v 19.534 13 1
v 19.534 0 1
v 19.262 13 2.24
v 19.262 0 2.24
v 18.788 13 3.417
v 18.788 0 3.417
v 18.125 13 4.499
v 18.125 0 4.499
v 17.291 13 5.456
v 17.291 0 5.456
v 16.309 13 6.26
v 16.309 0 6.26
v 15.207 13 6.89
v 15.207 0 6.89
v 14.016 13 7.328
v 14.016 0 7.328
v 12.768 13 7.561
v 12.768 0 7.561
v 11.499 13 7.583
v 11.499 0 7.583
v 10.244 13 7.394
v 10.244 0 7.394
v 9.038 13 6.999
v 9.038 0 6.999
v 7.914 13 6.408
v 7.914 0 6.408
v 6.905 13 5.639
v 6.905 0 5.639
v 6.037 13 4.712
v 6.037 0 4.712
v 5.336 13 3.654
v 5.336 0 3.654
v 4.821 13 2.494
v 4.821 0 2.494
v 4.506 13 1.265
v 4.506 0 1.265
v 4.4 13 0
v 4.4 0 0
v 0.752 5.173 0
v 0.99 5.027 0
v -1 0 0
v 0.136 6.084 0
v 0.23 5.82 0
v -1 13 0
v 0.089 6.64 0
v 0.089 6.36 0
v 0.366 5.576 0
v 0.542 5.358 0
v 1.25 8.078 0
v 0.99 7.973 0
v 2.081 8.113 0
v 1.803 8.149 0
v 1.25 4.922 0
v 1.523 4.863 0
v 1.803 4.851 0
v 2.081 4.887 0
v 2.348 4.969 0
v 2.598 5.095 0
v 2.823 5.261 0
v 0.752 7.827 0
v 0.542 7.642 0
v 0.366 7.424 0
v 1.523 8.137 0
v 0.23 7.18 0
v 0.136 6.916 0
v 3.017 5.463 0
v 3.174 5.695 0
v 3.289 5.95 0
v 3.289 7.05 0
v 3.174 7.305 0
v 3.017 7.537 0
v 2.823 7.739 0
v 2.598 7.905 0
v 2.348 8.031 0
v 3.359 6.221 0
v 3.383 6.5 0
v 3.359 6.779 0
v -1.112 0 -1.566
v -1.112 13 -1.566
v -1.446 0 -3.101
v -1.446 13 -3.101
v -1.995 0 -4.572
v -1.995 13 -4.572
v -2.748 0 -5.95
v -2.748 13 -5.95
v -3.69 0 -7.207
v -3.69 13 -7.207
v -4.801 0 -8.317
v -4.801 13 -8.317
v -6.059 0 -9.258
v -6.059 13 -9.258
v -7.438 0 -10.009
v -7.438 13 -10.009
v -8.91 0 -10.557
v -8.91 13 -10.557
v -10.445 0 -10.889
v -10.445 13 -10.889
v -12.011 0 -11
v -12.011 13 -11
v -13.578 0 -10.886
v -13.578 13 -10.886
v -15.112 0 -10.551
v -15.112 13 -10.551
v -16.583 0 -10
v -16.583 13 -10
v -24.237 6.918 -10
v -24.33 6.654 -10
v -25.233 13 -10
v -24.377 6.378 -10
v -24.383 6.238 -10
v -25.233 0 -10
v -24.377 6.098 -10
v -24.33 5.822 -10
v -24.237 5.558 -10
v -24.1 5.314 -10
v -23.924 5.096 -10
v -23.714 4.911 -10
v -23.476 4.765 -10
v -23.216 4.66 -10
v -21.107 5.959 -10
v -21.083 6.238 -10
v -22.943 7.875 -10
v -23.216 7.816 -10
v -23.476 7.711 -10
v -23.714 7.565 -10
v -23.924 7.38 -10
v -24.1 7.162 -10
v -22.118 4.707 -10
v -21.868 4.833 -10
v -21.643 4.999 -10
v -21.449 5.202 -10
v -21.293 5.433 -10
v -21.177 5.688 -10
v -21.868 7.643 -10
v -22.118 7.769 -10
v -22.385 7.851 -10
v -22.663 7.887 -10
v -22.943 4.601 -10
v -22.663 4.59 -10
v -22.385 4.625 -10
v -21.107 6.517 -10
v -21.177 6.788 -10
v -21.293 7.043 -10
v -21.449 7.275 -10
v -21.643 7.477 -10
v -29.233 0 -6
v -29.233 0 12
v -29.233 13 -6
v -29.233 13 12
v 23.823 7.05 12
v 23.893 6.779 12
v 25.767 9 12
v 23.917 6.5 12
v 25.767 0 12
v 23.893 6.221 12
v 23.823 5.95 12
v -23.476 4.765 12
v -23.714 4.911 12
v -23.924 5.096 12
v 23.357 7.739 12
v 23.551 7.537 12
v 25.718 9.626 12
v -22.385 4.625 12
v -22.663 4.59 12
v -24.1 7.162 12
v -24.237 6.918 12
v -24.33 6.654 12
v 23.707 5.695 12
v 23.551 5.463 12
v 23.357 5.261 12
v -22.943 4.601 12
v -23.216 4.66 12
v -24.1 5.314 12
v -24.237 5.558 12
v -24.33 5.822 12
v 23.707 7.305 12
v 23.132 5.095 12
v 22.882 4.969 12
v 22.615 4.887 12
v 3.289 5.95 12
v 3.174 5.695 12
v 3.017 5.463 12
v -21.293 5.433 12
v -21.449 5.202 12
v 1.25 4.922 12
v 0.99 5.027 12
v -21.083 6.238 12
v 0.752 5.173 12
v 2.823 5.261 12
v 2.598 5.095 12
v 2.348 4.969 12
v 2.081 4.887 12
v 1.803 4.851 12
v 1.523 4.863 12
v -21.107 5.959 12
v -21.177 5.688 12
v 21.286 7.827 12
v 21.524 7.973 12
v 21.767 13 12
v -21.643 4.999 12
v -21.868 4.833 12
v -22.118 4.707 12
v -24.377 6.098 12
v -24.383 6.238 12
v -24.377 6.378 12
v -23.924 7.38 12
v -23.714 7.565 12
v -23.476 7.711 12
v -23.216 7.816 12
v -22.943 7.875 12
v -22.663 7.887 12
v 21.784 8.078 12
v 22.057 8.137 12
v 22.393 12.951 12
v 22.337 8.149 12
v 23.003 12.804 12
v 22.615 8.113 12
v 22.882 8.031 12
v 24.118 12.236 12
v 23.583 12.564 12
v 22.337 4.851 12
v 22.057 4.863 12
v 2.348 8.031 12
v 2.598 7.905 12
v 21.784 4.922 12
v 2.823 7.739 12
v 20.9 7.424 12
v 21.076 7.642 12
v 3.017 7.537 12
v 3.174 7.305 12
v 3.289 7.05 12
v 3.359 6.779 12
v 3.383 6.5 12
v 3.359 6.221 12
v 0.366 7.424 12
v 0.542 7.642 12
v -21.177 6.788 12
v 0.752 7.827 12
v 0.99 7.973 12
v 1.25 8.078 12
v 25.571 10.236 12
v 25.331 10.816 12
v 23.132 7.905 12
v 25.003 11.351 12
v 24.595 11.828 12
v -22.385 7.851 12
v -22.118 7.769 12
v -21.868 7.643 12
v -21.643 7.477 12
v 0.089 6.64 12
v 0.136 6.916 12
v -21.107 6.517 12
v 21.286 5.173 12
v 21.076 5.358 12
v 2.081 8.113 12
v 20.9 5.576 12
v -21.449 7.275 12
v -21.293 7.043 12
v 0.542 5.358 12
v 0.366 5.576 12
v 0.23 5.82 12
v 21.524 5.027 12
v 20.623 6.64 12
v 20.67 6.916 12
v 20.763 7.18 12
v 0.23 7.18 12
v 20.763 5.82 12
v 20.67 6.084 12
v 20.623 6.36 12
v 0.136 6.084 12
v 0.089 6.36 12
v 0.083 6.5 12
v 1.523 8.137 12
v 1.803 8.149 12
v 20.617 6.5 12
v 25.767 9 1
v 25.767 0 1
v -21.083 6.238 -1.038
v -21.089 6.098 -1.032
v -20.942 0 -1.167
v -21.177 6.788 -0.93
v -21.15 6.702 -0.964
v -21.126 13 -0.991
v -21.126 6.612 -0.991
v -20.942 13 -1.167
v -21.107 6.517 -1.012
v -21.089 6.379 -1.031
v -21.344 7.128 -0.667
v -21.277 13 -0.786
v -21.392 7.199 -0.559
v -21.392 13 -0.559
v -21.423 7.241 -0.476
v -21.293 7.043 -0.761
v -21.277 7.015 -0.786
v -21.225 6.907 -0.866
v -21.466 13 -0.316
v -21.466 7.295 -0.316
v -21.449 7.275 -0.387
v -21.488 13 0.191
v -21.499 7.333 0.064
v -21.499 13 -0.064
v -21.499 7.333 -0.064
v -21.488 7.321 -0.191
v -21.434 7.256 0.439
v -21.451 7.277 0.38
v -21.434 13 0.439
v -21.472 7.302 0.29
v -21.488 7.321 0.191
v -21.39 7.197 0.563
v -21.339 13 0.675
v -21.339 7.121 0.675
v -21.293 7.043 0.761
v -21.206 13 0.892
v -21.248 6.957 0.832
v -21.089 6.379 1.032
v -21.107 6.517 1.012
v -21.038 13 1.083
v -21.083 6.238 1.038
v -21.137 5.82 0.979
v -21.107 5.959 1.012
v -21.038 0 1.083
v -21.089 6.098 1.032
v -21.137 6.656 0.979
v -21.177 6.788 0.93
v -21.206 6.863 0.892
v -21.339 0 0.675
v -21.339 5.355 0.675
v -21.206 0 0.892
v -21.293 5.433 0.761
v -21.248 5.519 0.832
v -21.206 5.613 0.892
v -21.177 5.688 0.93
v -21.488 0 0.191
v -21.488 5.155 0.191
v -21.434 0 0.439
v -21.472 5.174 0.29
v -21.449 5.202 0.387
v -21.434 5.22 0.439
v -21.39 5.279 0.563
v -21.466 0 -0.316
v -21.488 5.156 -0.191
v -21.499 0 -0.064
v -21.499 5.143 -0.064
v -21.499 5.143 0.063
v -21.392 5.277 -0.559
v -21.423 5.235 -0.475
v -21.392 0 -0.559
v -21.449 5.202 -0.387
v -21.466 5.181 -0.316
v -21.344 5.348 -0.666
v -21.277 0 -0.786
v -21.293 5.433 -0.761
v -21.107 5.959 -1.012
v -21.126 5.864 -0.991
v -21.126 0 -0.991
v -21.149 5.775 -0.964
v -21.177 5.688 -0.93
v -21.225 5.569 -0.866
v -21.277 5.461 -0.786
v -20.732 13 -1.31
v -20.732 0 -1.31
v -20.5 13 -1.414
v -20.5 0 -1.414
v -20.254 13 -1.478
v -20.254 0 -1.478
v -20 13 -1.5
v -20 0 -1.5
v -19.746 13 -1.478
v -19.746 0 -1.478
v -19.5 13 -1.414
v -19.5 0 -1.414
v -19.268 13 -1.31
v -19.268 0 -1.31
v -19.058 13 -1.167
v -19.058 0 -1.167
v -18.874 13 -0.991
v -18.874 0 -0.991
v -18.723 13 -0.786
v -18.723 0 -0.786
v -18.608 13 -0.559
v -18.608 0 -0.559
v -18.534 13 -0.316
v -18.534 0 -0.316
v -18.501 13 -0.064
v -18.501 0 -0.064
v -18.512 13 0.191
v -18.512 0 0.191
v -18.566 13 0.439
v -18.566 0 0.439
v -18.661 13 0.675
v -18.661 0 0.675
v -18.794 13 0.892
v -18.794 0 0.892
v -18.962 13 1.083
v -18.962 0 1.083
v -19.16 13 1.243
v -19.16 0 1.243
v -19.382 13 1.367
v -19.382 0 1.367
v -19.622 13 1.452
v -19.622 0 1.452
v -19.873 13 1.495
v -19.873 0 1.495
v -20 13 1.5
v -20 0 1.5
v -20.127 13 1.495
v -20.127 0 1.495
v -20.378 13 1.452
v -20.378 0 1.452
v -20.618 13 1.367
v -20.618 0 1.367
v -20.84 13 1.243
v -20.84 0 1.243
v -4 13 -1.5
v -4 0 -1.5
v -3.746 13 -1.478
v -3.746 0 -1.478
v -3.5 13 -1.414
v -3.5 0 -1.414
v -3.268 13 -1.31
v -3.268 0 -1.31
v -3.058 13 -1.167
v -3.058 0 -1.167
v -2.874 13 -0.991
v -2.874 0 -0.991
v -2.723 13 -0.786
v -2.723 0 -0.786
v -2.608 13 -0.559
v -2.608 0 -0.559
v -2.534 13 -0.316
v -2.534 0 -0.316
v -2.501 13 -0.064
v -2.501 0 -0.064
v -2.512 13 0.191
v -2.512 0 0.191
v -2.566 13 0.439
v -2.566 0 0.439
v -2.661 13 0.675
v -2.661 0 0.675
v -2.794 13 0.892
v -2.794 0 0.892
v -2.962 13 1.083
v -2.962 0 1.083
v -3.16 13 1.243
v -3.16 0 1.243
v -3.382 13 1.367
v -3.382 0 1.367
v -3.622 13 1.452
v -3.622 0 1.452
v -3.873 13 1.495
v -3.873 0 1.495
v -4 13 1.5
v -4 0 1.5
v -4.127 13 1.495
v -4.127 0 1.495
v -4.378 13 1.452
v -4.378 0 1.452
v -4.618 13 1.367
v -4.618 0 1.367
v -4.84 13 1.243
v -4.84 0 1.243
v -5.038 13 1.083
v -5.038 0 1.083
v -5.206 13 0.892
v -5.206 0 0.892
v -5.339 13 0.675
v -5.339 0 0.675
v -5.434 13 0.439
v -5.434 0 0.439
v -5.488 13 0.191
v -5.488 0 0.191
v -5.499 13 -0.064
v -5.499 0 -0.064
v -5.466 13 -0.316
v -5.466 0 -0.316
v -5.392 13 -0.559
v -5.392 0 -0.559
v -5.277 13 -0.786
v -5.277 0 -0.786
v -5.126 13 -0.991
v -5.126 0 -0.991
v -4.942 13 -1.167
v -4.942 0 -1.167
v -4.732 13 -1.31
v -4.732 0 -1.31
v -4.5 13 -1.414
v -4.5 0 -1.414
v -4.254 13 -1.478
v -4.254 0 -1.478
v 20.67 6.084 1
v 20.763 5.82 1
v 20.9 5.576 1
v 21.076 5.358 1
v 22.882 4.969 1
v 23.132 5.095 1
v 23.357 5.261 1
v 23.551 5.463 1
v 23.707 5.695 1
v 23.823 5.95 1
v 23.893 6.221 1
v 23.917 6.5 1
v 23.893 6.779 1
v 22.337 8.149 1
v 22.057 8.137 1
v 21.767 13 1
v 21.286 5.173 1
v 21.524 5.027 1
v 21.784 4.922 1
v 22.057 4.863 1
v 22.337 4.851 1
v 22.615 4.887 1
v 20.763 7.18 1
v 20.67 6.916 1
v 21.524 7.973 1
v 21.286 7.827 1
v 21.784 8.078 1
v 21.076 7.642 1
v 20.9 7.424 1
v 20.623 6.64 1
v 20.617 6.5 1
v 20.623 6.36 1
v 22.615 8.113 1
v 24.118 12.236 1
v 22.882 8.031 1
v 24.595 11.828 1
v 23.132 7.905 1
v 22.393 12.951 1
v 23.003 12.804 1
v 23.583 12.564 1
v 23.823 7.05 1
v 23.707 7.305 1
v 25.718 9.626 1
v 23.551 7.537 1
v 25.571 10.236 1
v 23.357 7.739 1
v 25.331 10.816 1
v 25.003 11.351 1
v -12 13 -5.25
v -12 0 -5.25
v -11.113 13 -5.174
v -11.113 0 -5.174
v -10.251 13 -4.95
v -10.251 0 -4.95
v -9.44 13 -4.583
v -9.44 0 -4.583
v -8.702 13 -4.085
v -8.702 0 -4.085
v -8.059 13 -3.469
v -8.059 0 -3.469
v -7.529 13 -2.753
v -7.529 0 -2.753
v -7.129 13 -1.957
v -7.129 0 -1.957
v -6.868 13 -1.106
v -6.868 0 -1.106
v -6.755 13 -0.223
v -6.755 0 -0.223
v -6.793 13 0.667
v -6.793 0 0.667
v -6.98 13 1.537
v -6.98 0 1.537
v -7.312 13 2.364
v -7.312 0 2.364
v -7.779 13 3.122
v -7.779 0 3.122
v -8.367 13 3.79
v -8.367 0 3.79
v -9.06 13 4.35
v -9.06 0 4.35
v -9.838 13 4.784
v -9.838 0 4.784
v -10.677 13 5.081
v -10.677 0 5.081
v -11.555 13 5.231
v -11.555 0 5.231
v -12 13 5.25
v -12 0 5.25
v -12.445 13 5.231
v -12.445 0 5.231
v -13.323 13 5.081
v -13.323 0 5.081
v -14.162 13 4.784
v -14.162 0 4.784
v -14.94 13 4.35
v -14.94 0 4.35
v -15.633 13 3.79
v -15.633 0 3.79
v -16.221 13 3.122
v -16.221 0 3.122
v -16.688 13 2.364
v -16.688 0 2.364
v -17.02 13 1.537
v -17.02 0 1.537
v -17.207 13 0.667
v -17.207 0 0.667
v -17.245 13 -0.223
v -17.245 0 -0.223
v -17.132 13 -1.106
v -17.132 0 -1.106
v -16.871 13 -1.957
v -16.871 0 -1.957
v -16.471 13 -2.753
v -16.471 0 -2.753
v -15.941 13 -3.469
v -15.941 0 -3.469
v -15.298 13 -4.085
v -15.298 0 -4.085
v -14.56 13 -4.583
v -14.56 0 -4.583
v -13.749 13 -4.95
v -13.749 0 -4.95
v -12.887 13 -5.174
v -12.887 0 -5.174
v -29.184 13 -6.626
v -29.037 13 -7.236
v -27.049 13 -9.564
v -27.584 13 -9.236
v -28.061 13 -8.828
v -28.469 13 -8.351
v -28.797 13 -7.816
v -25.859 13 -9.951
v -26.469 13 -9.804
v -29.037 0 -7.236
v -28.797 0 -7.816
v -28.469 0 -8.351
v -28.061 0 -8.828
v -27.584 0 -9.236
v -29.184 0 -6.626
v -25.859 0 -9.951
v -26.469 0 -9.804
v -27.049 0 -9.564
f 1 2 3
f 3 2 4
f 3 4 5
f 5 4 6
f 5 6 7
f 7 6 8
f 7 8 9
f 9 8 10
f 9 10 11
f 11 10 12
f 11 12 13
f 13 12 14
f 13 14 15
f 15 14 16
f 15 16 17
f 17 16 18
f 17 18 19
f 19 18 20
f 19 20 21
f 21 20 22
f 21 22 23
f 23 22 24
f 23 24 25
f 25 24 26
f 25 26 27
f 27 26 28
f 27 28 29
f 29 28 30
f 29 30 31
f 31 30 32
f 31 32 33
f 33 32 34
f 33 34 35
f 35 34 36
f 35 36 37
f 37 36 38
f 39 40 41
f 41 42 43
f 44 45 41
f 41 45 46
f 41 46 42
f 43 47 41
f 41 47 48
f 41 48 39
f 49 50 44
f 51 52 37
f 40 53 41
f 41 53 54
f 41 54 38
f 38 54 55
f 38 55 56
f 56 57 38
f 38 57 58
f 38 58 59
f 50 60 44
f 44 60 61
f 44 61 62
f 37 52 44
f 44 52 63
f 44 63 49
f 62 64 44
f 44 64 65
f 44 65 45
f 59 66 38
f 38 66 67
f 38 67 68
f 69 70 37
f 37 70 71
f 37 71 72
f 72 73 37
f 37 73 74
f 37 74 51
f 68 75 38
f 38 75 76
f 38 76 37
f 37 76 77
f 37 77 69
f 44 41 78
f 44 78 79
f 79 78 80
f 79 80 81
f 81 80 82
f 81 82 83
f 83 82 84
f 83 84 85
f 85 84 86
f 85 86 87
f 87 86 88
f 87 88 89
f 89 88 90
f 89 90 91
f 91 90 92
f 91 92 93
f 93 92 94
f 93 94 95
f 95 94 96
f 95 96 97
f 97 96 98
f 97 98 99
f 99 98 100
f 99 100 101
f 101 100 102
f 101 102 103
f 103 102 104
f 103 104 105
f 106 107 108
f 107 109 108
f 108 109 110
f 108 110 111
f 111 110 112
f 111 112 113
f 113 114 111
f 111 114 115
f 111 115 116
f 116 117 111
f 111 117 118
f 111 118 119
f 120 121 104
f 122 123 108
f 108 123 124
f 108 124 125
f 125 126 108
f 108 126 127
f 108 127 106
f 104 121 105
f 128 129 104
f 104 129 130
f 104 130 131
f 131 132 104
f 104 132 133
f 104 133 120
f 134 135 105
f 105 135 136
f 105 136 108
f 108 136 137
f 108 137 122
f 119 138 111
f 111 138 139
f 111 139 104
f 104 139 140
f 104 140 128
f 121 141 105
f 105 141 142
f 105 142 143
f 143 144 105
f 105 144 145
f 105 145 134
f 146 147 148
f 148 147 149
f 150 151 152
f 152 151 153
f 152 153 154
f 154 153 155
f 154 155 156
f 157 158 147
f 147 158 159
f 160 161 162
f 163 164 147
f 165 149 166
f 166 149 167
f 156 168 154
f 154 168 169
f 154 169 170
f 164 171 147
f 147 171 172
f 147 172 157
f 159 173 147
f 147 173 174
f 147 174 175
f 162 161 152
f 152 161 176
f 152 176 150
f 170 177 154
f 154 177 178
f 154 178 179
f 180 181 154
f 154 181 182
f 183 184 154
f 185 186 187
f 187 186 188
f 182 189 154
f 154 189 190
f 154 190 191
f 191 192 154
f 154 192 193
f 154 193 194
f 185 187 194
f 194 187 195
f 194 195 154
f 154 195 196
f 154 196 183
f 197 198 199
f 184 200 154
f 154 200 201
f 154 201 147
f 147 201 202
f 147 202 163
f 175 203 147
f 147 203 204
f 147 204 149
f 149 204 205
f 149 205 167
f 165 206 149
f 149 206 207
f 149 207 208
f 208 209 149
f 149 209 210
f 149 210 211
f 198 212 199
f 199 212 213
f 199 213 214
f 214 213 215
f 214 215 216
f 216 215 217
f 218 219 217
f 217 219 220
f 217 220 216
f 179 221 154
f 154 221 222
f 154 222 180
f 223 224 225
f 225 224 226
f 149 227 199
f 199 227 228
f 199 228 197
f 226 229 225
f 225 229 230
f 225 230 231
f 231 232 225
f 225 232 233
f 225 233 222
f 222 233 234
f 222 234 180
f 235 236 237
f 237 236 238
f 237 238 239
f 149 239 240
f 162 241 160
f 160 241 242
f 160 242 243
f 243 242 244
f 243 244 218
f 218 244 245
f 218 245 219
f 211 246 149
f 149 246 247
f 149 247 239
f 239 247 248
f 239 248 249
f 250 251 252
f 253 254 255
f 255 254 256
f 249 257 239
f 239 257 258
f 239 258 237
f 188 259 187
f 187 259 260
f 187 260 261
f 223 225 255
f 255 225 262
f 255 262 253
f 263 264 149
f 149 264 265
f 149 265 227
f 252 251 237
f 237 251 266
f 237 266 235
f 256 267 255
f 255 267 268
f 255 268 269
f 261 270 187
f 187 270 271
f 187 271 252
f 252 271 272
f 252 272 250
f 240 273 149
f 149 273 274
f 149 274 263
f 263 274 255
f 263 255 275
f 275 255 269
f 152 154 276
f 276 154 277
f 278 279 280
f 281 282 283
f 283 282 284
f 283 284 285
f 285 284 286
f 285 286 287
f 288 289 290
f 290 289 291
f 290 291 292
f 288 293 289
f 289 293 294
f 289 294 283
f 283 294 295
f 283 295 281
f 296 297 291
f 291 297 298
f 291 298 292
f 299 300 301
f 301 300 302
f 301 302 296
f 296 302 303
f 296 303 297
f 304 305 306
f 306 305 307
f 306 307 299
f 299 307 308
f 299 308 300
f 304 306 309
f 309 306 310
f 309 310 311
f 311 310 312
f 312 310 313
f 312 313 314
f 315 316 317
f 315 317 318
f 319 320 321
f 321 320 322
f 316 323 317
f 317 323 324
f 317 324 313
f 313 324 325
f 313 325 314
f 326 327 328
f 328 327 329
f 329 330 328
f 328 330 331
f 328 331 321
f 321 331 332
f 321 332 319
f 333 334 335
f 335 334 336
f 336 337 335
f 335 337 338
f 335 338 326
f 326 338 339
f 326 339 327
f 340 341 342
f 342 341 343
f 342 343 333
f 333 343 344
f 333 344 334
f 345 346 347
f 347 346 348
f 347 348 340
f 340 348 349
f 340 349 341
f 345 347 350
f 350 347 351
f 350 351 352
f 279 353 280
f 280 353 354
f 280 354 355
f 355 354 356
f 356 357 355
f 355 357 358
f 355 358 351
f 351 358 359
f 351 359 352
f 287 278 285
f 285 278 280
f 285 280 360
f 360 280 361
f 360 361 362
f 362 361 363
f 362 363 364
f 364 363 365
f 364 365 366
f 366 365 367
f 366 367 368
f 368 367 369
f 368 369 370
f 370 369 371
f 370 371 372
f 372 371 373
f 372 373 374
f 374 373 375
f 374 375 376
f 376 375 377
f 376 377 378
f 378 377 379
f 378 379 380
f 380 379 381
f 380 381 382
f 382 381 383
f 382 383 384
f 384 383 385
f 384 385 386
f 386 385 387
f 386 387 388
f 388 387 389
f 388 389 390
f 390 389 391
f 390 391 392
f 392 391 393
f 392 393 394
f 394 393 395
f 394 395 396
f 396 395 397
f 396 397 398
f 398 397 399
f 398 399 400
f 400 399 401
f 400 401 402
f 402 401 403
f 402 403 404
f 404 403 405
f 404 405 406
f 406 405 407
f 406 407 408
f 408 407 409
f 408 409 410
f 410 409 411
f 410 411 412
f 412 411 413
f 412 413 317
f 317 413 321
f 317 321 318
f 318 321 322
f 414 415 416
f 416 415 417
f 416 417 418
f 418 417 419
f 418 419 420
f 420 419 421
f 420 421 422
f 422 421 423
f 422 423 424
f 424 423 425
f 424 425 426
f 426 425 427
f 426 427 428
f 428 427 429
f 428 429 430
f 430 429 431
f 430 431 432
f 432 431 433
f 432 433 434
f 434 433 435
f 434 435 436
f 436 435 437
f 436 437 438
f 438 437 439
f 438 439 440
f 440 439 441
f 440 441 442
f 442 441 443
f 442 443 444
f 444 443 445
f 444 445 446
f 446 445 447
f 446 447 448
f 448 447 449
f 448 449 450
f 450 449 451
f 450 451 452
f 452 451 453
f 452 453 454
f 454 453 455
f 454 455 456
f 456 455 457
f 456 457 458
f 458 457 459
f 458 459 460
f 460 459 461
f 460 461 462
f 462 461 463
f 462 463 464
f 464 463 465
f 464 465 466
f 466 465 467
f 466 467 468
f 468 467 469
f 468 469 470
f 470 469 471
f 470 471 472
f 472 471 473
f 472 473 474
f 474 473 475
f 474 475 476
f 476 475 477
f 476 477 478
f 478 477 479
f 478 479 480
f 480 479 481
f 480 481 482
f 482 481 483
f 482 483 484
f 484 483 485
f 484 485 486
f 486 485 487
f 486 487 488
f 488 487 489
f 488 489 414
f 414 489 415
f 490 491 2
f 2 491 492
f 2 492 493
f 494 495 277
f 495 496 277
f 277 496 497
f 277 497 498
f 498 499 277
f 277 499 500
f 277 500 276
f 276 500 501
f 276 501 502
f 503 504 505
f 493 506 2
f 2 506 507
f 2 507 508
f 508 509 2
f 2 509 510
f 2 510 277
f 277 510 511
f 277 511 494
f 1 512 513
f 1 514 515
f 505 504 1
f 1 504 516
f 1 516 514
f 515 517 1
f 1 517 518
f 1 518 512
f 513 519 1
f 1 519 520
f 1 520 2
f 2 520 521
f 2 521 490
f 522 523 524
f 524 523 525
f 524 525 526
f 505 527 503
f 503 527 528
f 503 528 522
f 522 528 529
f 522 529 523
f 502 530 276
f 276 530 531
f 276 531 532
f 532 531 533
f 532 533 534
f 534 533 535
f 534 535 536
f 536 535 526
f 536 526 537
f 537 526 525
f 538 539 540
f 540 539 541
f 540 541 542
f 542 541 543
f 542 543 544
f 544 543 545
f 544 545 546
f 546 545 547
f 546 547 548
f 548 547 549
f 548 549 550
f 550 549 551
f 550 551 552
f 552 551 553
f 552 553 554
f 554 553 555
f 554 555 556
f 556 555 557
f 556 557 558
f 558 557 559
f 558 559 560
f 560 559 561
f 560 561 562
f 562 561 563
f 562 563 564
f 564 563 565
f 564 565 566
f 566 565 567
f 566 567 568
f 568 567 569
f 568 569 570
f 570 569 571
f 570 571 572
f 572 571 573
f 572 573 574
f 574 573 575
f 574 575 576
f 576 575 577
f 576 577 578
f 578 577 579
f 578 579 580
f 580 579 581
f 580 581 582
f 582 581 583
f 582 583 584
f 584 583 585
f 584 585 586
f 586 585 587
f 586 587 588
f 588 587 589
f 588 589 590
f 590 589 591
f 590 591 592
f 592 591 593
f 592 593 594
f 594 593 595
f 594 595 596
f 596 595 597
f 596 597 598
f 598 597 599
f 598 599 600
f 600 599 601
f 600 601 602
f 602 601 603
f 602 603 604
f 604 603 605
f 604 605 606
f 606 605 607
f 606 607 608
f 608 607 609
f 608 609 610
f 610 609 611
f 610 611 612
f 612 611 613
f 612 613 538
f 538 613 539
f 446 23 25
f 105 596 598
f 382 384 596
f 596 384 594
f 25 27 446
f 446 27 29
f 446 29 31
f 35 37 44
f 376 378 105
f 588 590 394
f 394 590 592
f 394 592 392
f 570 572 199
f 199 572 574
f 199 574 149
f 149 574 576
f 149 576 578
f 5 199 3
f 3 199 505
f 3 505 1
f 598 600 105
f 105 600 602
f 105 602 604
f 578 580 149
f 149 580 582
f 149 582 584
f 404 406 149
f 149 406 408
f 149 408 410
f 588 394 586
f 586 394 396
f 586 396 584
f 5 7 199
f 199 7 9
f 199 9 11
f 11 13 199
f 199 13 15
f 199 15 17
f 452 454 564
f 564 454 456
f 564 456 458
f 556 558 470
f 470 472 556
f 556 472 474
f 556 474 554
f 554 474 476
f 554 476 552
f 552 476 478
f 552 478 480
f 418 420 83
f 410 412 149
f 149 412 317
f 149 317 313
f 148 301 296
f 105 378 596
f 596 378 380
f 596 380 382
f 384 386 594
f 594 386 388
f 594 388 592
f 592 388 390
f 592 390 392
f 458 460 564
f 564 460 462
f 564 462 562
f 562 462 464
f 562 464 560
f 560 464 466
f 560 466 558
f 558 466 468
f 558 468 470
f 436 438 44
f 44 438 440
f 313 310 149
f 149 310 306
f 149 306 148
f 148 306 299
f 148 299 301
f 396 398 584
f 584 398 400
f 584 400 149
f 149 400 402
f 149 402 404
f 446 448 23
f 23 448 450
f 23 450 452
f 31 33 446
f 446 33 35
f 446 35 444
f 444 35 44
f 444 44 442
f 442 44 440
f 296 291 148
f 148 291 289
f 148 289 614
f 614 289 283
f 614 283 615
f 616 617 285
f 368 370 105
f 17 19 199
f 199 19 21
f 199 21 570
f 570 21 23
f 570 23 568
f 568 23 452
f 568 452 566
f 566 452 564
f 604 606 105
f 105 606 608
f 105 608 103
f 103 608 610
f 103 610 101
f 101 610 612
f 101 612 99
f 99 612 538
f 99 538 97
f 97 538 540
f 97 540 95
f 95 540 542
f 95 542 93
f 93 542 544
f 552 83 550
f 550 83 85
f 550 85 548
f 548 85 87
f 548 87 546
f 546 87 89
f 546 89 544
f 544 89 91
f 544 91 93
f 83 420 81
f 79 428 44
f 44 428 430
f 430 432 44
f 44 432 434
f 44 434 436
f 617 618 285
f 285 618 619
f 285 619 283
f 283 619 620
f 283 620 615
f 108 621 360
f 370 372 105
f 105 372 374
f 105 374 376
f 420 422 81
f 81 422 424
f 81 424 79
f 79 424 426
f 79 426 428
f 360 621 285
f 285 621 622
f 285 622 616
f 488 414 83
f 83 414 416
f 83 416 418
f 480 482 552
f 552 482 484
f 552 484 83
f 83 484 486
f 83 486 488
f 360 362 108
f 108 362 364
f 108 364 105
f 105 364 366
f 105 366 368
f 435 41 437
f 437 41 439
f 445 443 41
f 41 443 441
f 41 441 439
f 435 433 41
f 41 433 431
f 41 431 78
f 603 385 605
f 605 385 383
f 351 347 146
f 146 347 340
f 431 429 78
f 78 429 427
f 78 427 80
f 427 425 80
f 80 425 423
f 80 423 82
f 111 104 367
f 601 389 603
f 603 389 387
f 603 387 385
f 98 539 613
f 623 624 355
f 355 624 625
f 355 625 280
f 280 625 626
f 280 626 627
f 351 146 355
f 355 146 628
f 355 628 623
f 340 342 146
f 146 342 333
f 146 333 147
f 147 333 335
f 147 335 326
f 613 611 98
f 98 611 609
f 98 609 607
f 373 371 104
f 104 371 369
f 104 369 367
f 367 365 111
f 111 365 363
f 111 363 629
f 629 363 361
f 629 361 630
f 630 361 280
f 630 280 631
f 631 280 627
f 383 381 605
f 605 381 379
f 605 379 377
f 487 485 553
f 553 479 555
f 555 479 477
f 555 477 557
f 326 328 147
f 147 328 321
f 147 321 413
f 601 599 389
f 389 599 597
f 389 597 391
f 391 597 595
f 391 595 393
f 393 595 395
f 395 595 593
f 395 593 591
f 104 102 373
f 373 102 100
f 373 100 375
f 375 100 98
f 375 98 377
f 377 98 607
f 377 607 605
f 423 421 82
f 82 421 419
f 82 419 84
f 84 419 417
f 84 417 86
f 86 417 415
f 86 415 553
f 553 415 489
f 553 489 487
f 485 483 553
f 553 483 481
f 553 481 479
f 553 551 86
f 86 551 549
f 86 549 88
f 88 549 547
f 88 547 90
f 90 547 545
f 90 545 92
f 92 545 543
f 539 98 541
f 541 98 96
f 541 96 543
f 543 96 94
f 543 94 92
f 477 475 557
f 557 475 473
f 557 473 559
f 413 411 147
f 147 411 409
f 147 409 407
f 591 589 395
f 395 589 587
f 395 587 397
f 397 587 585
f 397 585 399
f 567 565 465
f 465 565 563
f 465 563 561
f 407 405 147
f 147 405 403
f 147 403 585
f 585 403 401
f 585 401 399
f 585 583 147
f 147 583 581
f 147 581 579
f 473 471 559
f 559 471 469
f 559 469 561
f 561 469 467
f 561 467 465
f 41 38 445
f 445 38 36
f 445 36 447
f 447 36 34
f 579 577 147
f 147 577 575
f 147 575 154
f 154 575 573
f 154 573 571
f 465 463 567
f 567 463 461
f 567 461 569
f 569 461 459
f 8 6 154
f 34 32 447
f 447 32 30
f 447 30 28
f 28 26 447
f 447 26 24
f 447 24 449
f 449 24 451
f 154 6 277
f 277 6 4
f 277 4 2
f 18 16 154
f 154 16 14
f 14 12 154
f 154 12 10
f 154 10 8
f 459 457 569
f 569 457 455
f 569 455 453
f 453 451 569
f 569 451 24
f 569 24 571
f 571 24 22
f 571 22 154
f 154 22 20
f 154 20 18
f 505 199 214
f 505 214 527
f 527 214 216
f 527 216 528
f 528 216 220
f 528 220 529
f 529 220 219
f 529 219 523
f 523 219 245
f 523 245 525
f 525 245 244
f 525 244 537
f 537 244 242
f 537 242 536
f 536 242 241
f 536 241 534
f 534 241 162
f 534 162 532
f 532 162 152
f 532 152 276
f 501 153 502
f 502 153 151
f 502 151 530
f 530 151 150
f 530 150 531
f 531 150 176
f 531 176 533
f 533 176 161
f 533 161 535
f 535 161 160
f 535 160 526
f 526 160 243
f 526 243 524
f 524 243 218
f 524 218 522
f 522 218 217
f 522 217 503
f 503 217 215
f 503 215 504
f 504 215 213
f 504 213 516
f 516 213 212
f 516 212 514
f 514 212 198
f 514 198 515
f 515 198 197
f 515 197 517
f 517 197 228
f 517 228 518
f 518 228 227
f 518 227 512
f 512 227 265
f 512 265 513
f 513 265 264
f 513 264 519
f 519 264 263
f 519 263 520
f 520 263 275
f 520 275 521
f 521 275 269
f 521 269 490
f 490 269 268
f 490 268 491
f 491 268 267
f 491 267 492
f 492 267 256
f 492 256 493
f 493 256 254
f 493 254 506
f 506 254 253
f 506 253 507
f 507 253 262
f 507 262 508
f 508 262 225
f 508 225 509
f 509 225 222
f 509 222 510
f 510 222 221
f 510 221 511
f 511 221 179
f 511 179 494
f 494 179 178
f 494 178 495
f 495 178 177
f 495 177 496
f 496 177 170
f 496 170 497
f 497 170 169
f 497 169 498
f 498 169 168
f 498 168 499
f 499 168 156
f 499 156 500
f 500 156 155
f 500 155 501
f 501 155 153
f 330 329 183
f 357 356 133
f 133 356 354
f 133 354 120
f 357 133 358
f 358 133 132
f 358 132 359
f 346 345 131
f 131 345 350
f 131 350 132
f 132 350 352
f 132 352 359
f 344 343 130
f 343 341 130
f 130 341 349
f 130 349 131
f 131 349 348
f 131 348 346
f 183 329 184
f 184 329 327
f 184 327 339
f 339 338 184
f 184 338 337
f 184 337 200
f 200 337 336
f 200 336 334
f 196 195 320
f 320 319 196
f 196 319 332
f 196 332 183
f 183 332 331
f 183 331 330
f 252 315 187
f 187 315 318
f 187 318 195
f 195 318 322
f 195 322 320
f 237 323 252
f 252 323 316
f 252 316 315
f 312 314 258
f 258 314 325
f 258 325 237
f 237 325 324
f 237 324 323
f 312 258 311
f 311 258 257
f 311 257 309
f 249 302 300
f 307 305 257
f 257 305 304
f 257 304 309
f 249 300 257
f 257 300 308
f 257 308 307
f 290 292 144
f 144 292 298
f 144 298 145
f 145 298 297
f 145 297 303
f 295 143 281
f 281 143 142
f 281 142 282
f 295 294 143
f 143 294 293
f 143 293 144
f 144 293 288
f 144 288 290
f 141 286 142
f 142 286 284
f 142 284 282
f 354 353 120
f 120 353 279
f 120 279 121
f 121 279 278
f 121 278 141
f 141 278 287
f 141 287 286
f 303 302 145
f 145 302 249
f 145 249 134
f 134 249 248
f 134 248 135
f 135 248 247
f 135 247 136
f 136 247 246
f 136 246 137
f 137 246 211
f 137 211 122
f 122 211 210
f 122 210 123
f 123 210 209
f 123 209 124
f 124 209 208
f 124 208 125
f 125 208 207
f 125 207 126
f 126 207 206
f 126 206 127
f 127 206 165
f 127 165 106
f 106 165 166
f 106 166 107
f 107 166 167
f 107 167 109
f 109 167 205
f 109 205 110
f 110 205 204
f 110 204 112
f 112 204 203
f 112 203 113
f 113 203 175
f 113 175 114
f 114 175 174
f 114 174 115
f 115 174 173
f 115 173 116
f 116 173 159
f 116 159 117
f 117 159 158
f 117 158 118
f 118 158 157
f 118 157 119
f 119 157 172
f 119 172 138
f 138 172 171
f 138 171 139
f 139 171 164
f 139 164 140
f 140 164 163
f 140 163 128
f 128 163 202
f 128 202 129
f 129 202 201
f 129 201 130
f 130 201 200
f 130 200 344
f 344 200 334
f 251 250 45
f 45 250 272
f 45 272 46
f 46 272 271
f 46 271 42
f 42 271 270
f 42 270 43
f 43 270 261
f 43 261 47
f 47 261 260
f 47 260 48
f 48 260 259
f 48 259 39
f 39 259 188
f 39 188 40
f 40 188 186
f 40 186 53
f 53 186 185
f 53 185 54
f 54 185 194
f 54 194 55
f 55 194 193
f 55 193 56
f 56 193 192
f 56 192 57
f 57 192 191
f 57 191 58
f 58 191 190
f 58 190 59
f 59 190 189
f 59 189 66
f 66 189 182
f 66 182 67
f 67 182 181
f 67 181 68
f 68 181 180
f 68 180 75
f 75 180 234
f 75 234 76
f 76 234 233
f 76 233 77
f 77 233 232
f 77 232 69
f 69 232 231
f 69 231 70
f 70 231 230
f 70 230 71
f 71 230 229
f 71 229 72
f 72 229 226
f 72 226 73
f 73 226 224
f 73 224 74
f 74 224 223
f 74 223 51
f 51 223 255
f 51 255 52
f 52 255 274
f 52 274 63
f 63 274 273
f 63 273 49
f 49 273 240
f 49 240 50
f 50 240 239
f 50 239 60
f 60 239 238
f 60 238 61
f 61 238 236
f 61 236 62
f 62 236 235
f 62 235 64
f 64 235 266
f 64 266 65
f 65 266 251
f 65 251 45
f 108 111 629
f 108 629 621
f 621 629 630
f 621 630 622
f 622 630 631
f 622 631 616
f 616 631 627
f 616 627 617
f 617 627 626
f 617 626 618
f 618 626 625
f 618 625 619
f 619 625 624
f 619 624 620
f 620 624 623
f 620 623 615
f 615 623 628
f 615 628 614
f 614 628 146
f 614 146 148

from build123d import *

# Parameters (mm, degrees)
SKETCH1_R               = 1.5
SKETCH1_R_2             = 5.25
BOSS_EXTRUDE4_DEPTH     = 13
FILLET2_R               = 4
CUT_EXTRUDE1_DEPTH      = 40.402671632
CUT_EXTRUDE1_DEPTH_BACK = 40.402671632
SKETCH2_R               = 1.65
FILLET3_R               = 4


with BuildPart() as part:
    # Sketch1 → Boss-Extrude4 (new body)
    with BuildSketch(Plane(origin=(0, 0, 0), x_dir=(1, 0, 0), z_dir=(0, 1, 0))):
        with BuildLine():
            Line((-29.23303836, -12), (25.76696164, -12))
            Line((25.76696164, -12), (25.76696164, -1))
            Line((25.76696164, -1), (19.533923281, -1))
            ThreePointArc((19.533923281, -1), (11.498909656, -7.583462828), (4.4, 0))
            Line((4.4, 0), (-1, 0))
            ThreePointArc((-1, 0), (-6.058970318, 9.257654472), (-16.582575695, 10))
            Line((-16.582575695, 10), (-29.23303836, 10))
            Line((-29.23303836, 10), (-29.23303836, -12))
        make_face()
        with Locations((-4, 0)):
            Circle(SKETCH1_R, mode=Mode.SUBTRACT)
        with Locations((-20, 0)):
            Circle(SKETCH1_R, mode=Mode.SUBTRACT)
        with Locations((-12, 0)):
            Circle(SKETCH1_R_2, mode=Mode.SUBTRACT)
    extrude(amount=BOSS_EXTRUDE4_DEPTH)

    # Fillet2
    fillet2_edges = [part.edges().sort_by_distance(p)[0] for p in [
        (25.76696164, 13, 6.5),
    ]]
    fillet(fillet2_edges, radius=FILLET2_R)

    # Sketch2 → Cut-Extrude1 (cut, two sides: drawn at the far end of the back side and taken through both)
    with BuildSketch(Plane.XY.offset(12).offset(-CUT_EXTRUDE1_DEPTH_BACK)):
        with Locations((22.26696164, 6.5)):
            Circle(SKETCH2_R)
        with Locations((1.73303836, 6.5)):
            Circle(SKETCH2_R)
        with Locations((-22.73303836, 6.238089535)):
            Circle(SKETCH2_R)
    extrude(amount=CUT_EXTRUDE1_DEPTH + CUT_EXTRUDE1_DEPTH_BACK, mode=Mode.SUBTRACT)

    # Fillet3
    fillet3_edges = [part.edges().sort_by_distance(p)[0] for p in [
        (-29.23303836, 6.5, -10),
    ]]
    fillet(fillet3_edges, radius=FILLET3_R)


solid = part.part
